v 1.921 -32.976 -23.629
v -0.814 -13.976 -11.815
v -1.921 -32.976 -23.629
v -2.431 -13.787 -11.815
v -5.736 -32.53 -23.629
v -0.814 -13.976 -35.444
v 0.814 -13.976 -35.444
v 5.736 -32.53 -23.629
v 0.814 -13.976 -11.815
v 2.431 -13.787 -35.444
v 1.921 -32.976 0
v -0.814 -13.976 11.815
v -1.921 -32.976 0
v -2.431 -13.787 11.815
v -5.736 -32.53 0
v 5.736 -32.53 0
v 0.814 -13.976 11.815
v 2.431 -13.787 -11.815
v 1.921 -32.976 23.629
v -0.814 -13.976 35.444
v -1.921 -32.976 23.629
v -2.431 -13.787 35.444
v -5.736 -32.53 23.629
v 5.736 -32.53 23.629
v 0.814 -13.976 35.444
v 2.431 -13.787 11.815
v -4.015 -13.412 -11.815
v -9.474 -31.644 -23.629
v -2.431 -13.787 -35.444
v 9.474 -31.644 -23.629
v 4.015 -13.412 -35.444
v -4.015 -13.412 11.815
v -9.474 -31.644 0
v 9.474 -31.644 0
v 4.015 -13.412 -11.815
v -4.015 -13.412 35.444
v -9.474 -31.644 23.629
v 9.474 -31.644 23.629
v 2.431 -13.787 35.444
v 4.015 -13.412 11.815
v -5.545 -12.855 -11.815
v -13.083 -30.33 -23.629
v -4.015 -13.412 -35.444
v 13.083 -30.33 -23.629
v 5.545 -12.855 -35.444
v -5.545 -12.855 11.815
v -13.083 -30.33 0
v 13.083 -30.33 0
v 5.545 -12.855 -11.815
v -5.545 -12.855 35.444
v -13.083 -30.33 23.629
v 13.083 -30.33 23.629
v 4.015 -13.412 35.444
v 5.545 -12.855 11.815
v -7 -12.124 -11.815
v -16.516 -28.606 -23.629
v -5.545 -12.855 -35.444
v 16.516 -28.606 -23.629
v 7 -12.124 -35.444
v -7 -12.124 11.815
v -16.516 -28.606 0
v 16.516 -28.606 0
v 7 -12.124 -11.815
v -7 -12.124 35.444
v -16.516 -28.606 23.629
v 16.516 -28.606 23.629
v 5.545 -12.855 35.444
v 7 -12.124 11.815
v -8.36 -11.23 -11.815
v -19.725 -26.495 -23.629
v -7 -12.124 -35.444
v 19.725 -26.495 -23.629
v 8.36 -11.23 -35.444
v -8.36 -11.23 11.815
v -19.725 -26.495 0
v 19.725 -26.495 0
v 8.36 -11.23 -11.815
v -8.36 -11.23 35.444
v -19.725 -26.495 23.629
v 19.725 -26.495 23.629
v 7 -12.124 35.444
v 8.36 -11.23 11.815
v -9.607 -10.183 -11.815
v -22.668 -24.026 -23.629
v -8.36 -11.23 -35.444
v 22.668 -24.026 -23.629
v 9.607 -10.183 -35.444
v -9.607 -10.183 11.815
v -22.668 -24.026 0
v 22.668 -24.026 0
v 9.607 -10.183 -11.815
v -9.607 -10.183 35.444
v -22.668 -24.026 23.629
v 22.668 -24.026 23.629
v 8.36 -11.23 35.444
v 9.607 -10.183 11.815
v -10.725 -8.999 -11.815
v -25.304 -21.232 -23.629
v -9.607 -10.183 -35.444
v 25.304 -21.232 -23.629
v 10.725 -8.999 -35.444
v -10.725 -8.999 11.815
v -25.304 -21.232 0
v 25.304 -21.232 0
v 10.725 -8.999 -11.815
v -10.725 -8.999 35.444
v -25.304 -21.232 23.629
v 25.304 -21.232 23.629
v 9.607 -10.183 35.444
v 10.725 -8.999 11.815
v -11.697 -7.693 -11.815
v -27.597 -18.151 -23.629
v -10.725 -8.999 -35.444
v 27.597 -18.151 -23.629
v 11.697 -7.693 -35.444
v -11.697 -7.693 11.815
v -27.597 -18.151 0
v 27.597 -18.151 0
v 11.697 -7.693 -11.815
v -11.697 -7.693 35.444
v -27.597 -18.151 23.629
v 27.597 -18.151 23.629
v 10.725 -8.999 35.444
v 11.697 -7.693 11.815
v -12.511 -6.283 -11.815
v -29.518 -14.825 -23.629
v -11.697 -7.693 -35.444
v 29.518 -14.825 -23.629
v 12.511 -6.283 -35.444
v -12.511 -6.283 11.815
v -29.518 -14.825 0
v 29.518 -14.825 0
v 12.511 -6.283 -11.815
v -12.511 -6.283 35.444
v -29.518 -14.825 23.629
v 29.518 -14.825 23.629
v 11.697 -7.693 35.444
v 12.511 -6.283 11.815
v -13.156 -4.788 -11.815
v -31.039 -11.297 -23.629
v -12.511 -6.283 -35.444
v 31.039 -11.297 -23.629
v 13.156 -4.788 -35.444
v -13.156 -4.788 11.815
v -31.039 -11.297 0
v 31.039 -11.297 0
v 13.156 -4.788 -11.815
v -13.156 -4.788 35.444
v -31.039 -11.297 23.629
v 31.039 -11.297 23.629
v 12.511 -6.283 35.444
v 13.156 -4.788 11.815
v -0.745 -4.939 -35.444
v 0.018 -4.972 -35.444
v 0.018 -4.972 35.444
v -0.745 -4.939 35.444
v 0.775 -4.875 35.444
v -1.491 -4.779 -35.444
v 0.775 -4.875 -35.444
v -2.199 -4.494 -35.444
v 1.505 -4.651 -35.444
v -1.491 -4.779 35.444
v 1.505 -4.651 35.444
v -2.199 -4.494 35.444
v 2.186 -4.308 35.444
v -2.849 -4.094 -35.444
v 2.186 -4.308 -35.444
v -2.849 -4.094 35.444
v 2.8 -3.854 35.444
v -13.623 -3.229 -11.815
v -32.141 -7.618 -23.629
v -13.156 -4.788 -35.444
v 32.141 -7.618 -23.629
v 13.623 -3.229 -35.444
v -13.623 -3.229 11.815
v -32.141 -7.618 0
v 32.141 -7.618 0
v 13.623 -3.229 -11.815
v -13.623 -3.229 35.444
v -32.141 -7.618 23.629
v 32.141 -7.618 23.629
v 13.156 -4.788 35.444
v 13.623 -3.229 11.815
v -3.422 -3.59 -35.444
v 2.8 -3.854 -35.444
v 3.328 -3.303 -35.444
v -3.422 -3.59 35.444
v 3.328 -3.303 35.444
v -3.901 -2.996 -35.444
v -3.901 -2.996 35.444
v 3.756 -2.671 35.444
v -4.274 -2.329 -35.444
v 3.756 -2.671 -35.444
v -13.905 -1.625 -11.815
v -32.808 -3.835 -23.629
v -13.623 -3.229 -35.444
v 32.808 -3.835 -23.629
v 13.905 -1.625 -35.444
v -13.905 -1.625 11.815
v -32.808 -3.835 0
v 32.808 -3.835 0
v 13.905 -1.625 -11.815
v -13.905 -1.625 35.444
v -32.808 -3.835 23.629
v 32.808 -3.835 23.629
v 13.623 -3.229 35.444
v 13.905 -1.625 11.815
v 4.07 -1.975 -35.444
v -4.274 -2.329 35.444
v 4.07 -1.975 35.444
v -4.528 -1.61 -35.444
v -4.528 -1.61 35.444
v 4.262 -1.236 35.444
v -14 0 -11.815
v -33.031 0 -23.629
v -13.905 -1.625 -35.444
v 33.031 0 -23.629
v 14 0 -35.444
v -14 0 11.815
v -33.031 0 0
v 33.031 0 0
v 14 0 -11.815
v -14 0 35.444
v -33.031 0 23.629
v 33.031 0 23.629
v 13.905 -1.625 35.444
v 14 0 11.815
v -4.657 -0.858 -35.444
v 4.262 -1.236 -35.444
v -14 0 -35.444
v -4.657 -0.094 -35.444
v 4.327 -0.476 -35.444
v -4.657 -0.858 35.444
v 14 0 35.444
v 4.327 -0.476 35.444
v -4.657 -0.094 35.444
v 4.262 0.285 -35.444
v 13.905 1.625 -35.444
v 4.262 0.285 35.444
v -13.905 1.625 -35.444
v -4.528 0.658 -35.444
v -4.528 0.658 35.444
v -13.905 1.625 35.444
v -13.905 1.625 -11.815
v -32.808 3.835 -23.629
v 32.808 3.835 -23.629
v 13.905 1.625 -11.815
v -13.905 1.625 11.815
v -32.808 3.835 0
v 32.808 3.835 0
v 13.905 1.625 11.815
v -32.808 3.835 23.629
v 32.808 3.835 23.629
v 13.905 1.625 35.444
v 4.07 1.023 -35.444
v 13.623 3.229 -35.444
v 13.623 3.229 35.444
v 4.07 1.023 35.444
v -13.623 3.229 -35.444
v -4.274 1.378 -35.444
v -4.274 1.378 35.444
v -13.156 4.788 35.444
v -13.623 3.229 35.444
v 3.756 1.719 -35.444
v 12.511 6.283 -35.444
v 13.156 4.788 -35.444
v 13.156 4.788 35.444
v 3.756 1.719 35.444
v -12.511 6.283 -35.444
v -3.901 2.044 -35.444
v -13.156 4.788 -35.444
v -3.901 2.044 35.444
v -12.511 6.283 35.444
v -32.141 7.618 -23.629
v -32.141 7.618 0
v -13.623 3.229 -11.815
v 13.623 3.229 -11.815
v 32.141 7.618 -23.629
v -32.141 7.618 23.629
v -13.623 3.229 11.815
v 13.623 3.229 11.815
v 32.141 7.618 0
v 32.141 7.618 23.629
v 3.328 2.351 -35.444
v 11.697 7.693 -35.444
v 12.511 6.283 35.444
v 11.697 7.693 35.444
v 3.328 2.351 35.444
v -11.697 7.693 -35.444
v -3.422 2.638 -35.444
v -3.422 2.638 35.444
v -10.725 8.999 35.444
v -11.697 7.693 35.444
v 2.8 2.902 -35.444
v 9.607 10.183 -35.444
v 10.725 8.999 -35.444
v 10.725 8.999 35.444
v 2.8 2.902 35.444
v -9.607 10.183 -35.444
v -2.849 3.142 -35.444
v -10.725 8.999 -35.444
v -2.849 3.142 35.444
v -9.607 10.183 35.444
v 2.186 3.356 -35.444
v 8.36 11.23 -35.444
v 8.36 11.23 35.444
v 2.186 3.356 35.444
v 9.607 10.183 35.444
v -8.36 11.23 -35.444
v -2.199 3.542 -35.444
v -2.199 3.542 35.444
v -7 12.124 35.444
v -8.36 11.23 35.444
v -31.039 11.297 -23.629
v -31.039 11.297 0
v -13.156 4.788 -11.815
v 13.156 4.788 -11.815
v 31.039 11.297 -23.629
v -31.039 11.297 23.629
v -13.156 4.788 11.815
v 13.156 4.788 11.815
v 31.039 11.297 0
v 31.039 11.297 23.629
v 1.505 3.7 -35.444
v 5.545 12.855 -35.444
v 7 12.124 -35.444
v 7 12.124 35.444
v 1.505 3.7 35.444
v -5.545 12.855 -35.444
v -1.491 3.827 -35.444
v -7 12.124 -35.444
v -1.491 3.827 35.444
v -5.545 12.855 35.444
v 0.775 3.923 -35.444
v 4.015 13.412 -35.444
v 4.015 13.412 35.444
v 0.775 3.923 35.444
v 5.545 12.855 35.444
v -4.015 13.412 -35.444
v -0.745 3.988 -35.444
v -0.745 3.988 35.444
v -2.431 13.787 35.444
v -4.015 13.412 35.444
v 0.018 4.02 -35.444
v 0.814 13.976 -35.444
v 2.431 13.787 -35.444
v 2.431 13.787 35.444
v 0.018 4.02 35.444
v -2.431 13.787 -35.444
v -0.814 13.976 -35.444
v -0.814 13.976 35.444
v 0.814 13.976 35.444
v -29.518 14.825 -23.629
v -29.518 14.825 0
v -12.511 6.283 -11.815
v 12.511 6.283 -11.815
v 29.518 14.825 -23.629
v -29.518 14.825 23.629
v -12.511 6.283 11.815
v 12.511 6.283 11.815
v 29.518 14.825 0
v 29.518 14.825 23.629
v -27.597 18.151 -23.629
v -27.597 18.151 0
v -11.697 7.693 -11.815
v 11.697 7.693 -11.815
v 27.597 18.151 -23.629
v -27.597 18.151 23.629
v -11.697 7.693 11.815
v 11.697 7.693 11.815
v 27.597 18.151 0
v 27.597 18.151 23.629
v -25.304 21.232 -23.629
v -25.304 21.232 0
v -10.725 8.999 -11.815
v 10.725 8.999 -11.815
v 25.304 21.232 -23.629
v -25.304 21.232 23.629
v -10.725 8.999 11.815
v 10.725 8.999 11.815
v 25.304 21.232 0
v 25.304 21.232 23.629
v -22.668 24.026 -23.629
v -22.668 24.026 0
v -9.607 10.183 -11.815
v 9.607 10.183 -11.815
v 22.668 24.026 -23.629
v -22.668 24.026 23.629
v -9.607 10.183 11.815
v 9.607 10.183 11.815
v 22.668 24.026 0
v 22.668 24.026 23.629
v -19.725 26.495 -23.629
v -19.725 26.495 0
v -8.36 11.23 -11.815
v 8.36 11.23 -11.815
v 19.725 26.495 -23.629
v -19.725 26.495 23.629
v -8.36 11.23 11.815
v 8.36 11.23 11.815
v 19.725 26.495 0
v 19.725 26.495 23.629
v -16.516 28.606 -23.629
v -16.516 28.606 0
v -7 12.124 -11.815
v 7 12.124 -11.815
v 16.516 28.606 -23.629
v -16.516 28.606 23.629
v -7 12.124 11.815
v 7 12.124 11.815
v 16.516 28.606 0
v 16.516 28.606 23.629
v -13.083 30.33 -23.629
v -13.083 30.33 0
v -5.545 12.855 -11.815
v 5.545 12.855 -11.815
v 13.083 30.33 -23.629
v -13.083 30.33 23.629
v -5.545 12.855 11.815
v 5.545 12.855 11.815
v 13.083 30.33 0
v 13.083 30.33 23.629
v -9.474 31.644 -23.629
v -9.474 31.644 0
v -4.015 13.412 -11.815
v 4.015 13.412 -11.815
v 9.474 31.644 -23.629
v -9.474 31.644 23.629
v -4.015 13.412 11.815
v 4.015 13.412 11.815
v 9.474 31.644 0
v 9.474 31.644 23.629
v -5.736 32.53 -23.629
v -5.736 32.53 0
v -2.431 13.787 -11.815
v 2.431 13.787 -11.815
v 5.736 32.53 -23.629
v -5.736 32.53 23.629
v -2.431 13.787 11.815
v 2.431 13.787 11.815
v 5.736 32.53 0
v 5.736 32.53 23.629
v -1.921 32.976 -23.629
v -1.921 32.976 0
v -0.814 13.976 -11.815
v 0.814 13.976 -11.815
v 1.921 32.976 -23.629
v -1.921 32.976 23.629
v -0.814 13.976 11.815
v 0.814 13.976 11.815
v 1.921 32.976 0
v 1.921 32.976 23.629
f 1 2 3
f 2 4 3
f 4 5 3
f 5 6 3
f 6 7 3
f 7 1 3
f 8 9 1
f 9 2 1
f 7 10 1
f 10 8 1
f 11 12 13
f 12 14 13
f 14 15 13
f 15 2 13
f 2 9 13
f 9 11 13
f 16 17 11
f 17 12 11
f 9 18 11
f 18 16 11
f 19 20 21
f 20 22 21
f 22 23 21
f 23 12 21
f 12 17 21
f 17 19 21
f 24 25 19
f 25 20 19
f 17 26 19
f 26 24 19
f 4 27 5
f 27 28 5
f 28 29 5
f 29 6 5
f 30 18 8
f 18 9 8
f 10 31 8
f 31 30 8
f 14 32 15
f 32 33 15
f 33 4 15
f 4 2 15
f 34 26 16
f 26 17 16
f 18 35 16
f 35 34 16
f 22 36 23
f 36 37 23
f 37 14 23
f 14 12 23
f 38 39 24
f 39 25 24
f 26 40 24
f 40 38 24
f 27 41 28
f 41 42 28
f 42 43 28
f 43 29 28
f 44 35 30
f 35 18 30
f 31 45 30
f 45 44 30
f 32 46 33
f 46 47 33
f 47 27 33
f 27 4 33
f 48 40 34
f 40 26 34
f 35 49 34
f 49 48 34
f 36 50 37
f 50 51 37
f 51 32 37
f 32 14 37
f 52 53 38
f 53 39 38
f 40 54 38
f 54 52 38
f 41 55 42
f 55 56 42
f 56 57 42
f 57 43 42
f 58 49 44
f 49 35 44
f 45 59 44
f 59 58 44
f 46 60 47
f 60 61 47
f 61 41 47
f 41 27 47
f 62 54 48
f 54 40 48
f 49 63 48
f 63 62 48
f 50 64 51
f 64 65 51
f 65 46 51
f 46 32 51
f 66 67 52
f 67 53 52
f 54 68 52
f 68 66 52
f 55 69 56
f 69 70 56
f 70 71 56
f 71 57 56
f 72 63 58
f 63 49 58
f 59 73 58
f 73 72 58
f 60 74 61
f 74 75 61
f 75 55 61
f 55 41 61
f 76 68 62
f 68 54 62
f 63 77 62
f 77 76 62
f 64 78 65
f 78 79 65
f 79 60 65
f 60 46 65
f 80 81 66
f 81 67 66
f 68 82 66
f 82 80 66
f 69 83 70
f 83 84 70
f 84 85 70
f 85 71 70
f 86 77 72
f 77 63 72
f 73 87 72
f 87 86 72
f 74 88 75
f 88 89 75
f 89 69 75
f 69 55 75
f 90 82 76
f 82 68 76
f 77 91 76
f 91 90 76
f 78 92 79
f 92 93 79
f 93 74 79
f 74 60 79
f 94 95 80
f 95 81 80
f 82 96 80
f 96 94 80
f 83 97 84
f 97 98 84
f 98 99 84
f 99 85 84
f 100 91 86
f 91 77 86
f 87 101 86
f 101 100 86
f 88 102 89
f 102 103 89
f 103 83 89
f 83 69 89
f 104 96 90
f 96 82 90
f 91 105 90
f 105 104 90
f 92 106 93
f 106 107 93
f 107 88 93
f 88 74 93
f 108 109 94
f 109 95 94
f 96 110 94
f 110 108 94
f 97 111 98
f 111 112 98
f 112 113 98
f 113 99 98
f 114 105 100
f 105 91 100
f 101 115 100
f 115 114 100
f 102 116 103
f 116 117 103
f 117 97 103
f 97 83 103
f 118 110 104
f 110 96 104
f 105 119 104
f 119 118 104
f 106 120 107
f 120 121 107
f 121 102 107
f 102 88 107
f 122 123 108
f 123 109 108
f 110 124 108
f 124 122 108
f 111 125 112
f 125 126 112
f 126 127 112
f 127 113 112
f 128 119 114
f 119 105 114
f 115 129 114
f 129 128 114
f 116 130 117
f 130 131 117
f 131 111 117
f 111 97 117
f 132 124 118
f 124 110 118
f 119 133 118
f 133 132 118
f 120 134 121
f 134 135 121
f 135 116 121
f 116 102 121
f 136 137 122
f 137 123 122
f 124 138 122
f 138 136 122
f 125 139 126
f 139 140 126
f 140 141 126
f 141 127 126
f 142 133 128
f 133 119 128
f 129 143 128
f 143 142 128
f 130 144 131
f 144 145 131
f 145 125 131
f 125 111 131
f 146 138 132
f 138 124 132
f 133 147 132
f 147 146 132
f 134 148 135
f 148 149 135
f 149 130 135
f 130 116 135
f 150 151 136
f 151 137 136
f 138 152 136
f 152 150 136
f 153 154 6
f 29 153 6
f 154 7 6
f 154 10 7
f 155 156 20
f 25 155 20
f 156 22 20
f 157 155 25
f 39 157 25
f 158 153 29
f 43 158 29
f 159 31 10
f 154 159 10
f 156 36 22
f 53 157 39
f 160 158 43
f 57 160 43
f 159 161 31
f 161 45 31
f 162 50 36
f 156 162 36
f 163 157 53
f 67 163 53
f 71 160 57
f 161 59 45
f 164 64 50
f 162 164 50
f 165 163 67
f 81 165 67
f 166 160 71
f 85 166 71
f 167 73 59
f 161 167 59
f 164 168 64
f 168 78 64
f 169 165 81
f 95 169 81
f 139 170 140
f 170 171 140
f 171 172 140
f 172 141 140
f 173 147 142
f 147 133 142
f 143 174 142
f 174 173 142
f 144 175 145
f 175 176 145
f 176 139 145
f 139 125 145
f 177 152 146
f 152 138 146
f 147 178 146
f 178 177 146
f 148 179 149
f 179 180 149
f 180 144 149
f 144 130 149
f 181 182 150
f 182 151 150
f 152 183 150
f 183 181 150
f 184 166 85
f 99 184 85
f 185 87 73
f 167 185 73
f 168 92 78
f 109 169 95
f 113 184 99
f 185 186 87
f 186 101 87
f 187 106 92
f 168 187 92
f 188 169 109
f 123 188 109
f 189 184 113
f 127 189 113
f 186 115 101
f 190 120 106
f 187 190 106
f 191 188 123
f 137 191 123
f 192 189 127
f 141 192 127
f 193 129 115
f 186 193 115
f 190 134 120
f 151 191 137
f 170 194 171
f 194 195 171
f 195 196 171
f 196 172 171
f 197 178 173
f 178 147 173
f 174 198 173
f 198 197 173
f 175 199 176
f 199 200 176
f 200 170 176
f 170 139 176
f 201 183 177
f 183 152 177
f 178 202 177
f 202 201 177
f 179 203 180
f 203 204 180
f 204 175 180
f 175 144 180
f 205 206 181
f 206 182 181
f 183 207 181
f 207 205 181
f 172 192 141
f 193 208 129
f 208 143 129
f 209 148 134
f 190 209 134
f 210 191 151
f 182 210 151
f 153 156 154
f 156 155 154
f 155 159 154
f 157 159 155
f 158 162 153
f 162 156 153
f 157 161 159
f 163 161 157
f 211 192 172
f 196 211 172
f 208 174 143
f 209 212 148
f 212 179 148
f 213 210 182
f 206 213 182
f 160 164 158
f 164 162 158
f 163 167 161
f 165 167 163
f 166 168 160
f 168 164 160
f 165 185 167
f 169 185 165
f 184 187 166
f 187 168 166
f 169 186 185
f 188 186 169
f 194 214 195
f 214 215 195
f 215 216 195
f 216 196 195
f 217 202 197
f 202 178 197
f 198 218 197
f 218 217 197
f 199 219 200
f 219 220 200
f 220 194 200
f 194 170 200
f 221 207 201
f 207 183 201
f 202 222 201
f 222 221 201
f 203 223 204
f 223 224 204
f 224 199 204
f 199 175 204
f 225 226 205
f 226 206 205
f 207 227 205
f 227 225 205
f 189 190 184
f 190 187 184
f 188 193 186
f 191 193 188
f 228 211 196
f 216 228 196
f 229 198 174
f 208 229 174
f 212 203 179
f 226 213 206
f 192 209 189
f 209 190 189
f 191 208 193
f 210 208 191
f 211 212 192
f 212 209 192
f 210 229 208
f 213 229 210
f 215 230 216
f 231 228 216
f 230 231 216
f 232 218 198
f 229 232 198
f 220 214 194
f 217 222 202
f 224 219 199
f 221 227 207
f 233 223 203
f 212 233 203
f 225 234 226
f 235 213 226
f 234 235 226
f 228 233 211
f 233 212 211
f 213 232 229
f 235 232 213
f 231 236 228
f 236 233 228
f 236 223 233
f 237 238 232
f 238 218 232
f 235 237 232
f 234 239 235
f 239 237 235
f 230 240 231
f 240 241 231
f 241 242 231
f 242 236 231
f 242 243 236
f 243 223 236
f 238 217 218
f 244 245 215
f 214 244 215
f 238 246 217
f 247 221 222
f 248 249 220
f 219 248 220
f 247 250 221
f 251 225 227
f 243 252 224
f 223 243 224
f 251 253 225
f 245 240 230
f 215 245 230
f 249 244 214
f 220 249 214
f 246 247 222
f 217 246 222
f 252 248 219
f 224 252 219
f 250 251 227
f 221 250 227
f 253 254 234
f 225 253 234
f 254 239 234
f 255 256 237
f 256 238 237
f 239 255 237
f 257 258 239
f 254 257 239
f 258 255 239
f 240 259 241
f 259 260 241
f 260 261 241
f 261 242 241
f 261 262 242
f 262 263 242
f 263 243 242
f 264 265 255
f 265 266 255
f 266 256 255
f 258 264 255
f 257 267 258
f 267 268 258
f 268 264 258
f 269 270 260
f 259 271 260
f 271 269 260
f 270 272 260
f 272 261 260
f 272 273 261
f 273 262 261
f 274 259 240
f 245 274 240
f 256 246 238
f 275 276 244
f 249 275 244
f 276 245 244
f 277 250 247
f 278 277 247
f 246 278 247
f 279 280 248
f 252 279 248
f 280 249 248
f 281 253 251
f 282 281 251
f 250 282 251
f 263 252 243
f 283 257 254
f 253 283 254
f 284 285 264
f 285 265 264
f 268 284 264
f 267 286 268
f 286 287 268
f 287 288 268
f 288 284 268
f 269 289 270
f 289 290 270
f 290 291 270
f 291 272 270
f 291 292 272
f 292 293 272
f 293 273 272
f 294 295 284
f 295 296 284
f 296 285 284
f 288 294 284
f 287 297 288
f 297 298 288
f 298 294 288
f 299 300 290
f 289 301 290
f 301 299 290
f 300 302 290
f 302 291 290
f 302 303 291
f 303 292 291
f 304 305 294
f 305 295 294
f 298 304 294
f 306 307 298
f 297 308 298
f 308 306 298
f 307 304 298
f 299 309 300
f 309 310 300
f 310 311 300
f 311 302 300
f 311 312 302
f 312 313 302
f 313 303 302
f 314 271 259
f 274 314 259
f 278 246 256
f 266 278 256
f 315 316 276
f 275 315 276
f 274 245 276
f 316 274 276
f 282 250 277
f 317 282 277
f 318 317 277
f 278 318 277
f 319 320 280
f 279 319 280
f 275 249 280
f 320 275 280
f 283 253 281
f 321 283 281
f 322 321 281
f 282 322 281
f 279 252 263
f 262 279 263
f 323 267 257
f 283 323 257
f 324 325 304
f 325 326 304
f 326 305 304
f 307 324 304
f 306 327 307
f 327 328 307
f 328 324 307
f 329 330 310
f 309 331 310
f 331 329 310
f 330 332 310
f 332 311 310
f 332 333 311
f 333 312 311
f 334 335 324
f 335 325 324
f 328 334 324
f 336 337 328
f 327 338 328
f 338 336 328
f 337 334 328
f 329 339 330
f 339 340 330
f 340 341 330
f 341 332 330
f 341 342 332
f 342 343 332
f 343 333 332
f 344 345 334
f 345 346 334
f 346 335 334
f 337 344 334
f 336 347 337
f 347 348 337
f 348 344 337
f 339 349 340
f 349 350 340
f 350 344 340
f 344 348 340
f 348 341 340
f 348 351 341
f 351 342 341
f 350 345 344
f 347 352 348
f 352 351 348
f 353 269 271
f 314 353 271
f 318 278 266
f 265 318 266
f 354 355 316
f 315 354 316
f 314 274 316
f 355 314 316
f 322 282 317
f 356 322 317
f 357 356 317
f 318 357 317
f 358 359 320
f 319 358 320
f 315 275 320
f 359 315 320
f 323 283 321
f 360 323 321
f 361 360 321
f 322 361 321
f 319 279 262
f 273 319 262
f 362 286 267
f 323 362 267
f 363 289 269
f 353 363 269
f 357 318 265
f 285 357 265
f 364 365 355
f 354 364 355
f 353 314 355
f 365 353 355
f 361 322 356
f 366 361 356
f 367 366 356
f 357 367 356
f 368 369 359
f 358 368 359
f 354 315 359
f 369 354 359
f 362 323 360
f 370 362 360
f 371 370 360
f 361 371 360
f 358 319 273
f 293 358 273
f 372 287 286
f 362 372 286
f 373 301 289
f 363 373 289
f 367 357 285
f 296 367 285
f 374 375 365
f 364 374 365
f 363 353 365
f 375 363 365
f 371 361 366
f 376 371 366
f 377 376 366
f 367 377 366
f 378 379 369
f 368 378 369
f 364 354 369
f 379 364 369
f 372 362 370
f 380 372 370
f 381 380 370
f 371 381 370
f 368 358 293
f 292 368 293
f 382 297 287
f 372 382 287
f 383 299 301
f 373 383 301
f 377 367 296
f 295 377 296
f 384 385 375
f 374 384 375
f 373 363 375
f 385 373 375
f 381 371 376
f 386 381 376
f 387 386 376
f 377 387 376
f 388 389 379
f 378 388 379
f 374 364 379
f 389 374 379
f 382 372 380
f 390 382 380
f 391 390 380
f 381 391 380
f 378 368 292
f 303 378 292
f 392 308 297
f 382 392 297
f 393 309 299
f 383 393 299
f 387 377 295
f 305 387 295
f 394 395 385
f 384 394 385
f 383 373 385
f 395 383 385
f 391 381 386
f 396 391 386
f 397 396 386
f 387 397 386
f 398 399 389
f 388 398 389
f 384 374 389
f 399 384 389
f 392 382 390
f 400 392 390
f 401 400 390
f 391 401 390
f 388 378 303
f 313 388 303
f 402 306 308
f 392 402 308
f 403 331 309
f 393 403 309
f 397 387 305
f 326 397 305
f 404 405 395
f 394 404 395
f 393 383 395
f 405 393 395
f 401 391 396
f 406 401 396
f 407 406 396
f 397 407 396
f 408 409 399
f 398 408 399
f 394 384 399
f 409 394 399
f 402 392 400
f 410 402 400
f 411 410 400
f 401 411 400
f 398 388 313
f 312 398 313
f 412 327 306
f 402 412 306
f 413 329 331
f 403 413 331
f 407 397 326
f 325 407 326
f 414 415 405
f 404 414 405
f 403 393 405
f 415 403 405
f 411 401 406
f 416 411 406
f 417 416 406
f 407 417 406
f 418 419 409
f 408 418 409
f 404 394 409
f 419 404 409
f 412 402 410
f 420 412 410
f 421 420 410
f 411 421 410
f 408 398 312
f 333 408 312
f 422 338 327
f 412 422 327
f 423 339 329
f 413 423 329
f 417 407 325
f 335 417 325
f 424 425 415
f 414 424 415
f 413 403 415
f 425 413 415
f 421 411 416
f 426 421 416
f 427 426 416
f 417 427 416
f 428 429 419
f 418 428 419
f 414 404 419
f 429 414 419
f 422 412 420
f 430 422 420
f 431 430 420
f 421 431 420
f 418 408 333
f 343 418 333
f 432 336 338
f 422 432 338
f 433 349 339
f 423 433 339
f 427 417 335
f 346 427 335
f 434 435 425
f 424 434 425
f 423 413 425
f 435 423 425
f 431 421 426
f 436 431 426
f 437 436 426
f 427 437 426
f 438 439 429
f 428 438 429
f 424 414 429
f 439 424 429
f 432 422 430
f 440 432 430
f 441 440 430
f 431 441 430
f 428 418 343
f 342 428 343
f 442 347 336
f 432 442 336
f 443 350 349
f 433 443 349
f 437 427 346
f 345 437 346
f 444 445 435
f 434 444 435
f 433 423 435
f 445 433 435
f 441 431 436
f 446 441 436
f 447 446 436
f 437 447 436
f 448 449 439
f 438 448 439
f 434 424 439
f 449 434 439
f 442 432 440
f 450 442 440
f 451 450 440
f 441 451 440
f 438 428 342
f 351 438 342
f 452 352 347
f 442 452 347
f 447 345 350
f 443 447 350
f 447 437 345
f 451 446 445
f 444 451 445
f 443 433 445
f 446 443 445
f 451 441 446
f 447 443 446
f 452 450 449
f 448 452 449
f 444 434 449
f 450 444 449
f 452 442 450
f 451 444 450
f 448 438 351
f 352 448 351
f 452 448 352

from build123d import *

# Parameters (mm, degrees)
TALADRO_DE_MARGEN_PARA_M81_D = 9


with BuildPart() as part:
    # Croquis1 → Revolución1 (revolve)
    with BuildSketch(Plane(origin=(0, 0, 0), x_dir=(1, 0, 0), z_dir=(0, 1, 0))):
        Polygon((0, 35.444139638), (0, -35.444139638), (14, -35.444139638), (33.031482218, -23.629426425), (14, -11.814713213), (33.031482218, 0), (14, 11.814713213), (33.031482218, 23.629426425), (14, 35.444139638), align=None)
    revolve(axis=Axis((0, 0, -35.444139638), (0, 0, 1)))

    # Taladro de margen para M81 (through all)
    with Locations(Plane.XY.offset(35.444139638)):
        with Locations((-0.173045489, -0.475875094)):
            Hole(TALADRO_DE_MARGEN_PARA_M81_D / 2)


solid = part.part
